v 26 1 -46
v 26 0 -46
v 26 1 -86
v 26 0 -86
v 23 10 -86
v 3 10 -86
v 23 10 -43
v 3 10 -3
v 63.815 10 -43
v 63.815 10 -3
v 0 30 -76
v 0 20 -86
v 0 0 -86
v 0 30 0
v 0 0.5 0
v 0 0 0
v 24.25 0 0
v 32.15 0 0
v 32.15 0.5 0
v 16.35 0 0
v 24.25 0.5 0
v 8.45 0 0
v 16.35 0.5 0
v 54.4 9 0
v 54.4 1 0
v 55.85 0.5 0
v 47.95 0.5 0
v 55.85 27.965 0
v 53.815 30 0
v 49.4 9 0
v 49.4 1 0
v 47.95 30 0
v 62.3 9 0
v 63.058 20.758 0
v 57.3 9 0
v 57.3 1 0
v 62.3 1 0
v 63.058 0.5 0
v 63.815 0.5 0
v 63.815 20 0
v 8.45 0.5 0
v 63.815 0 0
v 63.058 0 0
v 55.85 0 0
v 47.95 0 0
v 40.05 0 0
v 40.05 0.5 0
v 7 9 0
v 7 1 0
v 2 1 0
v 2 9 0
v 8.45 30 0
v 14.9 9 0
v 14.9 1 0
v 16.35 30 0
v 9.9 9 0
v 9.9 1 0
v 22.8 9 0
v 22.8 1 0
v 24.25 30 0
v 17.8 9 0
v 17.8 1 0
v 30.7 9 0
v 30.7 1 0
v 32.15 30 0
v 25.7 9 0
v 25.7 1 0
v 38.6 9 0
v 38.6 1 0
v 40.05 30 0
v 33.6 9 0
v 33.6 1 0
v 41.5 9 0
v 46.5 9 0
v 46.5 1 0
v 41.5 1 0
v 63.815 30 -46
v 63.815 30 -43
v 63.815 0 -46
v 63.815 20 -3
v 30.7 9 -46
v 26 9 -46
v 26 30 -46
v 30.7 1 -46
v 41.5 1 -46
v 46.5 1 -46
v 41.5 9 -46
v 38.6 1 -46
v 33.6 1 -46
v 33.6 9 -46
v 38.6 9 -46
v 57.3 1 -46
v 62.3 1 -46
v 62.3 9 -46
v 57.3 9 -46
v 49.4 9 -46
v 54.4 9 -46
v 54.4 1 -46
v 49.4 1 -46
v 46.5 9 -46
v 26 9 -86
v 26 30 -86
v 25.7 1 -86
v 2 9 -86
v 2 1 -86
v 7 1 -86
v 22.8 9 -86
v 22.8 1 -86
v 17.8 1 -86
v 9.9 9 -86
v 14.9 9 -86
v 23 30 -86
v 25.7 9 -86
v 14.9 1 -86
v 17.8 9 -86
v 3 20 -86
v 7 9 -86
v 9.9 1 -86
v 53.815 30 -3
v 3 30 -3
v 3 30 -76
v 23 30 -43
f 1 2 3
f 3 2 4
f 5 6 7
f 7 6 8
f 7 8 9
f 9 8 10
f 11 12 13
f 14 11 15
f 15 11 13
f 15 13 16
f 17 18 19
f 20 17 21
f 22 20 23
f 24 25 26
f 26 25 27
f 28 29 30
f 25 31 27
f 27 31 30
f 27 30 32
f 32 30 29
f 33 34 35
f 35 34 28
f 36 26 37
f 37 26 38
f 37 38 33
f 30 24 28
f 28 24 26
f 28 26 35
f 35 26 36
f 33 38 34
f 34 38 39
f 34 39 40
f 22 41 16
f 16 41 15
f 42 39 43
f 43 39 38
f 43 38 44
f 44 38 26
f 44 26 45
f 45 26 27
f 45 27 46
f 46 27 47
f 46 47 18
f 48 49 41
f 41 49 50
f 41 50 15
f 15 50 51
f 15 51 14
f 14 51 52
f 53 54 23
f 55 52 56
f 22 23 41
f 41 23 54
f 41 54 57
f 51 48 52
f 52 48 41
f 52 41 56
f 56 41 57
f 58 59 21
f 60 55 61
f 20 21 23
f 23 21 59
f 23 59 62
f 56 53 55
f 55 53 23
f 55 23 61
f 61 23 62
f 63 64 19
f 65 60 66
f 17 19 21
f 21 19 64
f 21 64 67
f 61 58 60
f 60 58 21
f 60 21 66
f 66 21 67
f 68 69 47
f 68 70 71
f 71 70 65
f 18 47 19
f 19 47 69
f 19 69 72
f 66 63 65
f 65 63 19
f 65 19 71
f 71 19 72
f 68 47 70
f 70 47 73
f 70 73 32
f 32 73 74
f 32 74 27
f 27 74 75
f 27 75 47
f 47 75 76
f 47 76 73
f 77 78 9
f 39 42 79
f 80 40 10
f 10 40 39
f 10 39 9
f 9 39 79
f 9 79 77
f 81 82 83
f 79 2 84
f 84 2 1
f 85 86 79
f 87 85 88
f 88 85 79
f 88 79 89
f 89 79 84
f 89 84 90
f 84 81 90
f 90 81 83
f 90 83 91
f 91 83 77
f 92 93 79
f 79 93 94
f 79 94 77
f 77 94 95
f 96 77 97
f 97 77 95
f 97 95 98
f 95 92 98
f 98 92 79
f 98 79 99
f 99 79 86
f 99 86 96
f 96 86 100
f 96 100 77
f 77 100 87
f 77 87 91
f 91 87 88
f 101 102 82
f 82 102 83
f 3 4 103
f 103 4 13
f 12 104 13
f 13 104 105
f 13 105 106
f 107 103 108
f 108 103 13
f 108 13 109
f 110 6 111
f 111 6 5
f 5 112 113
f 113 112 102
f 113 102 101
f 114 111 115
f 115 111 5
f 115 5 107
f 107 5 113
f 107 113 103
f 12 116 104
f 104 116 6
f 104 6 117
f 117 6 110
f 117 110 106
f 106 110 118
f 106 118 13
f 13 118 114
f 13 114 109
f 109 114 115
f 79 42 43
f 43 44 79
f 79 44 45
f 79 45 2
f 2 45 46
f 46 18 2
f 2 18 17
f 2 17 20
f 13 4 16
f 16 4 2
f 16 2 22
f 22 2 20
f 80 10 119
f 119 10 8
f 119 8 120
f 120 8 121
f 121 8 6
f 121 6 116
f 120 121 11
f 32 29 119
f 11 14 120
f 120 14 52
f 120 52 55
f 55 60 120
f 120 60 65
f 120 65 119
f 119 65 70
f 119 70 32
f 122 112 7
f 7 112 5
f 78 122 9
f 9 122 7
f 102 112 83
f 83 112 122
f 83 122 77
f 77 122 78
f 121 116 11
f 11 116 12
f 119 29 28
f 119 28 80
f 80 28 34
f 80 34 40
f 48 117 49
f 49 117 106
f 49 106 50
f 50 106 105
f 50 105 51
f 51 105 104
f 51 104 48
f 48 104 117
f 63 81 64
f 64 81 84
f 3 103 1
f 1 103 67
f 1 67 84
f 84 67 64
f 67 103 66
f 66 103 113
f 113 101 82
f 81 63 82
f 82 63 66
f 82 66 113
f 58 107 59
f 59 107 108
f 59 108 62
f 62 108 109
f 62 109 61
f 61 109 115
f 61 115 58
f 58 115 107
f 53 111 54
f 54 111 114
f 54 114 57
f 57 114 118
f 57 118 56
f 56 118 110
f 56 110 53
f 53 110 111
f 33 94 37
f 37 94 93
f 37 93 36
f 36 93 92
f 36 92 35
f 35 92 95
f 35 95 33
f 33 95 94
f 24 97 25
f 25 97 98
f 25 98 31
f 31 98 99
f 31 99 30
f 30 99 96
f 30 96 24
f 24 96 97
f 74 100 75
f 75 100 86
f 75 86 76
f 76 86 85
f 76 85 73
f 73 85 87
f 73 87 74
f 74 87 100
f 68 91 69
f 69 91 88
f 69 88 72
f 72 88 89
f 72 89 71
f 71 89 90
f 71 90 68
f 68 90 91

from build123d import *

# Parameters (mm, degrees)
BOSS_EXTRUDE1_DEPTH = 10
EXTRUDE_THIN1_DEPTH = 20
CHAMFER1_SIZE       = 10
SKETCH4_W           = 5
SKETCH4_H           = 8
CUT_EXTRUDE1_DEPTH  = 99


with BuildPart() as part:
    # Sketch1 → Boss-Extrude1 (new body)
    with BuildSketch(Plane(origin=(0, 0, 0), x_dir=(1, 0, 0), z_dir=(0, 1, 0))):
        Polygon((0, 39.088250925), (0, 0), (63.815145827, 0), (63.815145827, 46), (26, 46), (26, 86), (0, 86), align=None)
    extrude(amount=BOSS_EXTRUDE1_DEPTH)

    # Sketch2 → Extrude-Thin1 (add)
    with BuildSketch(Plane(origin=(0, 10, 0), x_dir=(1, 0, 0), z_dir=(0, 1, 0))):
        Polygon((0, 86), (0, 0), (63.815145827, 0), (63.815145827, 3), (3, 3), (3, 86), align=None)
        Polygon((63.815145827, 46), (26, 46), (26, 86), (23, 86), (23, 43), (63.815145827, 43), align=None)
    extrude(amount=EXTRUDE_THIN1_DEPTH)

    # Chamfer1
    chamfer1_edges = [part.edges().sort_by_distance(p)[0] for p in [
        (63.815145827, 30, -1.5),
        (1.5, 30, -86),
    ]]
    chamfer(chamfer1_edges, length=CHAMFER1_SIZE)

    # Sketch4 → Cut-Extrude1 (cut)
    with BuildSketch(Plane.XY):
        with Locations((12.4, 5)):
            Rectangle(SKETCH4_W, SKETCH4_H)
        with Locations((4.5, 5)):
            Rectangle(SKETCH4_W, SKETCH4_H)
        with Locations((20.3, 5)):
            Rectangle(SKETCH4_W, SKETCH4_H)
        with Locations((28.2, 5)):
            Rectangle(SKETCH4_W, SKETCH4_H)
        with Locations((36.1, 5)):
            Rectangle(SKETCH4_W, SKETCH4_H)
        with Locations((44, 5)):
            Rectangle(SKETCH4_W, SKETCH4_H)
        with Locations((51.9, 5)):
            Rectangle(SKETCH4_W, SKETCH4_H)
        with Locations((59.8, 5)):
            Rectangle(SKETCH4_W, SKETCH4_H)
    extrude(amount=-CUT_EXTRUDE1_DEPTH, mode=Mode.SUBTRACT)


solid = part.part
